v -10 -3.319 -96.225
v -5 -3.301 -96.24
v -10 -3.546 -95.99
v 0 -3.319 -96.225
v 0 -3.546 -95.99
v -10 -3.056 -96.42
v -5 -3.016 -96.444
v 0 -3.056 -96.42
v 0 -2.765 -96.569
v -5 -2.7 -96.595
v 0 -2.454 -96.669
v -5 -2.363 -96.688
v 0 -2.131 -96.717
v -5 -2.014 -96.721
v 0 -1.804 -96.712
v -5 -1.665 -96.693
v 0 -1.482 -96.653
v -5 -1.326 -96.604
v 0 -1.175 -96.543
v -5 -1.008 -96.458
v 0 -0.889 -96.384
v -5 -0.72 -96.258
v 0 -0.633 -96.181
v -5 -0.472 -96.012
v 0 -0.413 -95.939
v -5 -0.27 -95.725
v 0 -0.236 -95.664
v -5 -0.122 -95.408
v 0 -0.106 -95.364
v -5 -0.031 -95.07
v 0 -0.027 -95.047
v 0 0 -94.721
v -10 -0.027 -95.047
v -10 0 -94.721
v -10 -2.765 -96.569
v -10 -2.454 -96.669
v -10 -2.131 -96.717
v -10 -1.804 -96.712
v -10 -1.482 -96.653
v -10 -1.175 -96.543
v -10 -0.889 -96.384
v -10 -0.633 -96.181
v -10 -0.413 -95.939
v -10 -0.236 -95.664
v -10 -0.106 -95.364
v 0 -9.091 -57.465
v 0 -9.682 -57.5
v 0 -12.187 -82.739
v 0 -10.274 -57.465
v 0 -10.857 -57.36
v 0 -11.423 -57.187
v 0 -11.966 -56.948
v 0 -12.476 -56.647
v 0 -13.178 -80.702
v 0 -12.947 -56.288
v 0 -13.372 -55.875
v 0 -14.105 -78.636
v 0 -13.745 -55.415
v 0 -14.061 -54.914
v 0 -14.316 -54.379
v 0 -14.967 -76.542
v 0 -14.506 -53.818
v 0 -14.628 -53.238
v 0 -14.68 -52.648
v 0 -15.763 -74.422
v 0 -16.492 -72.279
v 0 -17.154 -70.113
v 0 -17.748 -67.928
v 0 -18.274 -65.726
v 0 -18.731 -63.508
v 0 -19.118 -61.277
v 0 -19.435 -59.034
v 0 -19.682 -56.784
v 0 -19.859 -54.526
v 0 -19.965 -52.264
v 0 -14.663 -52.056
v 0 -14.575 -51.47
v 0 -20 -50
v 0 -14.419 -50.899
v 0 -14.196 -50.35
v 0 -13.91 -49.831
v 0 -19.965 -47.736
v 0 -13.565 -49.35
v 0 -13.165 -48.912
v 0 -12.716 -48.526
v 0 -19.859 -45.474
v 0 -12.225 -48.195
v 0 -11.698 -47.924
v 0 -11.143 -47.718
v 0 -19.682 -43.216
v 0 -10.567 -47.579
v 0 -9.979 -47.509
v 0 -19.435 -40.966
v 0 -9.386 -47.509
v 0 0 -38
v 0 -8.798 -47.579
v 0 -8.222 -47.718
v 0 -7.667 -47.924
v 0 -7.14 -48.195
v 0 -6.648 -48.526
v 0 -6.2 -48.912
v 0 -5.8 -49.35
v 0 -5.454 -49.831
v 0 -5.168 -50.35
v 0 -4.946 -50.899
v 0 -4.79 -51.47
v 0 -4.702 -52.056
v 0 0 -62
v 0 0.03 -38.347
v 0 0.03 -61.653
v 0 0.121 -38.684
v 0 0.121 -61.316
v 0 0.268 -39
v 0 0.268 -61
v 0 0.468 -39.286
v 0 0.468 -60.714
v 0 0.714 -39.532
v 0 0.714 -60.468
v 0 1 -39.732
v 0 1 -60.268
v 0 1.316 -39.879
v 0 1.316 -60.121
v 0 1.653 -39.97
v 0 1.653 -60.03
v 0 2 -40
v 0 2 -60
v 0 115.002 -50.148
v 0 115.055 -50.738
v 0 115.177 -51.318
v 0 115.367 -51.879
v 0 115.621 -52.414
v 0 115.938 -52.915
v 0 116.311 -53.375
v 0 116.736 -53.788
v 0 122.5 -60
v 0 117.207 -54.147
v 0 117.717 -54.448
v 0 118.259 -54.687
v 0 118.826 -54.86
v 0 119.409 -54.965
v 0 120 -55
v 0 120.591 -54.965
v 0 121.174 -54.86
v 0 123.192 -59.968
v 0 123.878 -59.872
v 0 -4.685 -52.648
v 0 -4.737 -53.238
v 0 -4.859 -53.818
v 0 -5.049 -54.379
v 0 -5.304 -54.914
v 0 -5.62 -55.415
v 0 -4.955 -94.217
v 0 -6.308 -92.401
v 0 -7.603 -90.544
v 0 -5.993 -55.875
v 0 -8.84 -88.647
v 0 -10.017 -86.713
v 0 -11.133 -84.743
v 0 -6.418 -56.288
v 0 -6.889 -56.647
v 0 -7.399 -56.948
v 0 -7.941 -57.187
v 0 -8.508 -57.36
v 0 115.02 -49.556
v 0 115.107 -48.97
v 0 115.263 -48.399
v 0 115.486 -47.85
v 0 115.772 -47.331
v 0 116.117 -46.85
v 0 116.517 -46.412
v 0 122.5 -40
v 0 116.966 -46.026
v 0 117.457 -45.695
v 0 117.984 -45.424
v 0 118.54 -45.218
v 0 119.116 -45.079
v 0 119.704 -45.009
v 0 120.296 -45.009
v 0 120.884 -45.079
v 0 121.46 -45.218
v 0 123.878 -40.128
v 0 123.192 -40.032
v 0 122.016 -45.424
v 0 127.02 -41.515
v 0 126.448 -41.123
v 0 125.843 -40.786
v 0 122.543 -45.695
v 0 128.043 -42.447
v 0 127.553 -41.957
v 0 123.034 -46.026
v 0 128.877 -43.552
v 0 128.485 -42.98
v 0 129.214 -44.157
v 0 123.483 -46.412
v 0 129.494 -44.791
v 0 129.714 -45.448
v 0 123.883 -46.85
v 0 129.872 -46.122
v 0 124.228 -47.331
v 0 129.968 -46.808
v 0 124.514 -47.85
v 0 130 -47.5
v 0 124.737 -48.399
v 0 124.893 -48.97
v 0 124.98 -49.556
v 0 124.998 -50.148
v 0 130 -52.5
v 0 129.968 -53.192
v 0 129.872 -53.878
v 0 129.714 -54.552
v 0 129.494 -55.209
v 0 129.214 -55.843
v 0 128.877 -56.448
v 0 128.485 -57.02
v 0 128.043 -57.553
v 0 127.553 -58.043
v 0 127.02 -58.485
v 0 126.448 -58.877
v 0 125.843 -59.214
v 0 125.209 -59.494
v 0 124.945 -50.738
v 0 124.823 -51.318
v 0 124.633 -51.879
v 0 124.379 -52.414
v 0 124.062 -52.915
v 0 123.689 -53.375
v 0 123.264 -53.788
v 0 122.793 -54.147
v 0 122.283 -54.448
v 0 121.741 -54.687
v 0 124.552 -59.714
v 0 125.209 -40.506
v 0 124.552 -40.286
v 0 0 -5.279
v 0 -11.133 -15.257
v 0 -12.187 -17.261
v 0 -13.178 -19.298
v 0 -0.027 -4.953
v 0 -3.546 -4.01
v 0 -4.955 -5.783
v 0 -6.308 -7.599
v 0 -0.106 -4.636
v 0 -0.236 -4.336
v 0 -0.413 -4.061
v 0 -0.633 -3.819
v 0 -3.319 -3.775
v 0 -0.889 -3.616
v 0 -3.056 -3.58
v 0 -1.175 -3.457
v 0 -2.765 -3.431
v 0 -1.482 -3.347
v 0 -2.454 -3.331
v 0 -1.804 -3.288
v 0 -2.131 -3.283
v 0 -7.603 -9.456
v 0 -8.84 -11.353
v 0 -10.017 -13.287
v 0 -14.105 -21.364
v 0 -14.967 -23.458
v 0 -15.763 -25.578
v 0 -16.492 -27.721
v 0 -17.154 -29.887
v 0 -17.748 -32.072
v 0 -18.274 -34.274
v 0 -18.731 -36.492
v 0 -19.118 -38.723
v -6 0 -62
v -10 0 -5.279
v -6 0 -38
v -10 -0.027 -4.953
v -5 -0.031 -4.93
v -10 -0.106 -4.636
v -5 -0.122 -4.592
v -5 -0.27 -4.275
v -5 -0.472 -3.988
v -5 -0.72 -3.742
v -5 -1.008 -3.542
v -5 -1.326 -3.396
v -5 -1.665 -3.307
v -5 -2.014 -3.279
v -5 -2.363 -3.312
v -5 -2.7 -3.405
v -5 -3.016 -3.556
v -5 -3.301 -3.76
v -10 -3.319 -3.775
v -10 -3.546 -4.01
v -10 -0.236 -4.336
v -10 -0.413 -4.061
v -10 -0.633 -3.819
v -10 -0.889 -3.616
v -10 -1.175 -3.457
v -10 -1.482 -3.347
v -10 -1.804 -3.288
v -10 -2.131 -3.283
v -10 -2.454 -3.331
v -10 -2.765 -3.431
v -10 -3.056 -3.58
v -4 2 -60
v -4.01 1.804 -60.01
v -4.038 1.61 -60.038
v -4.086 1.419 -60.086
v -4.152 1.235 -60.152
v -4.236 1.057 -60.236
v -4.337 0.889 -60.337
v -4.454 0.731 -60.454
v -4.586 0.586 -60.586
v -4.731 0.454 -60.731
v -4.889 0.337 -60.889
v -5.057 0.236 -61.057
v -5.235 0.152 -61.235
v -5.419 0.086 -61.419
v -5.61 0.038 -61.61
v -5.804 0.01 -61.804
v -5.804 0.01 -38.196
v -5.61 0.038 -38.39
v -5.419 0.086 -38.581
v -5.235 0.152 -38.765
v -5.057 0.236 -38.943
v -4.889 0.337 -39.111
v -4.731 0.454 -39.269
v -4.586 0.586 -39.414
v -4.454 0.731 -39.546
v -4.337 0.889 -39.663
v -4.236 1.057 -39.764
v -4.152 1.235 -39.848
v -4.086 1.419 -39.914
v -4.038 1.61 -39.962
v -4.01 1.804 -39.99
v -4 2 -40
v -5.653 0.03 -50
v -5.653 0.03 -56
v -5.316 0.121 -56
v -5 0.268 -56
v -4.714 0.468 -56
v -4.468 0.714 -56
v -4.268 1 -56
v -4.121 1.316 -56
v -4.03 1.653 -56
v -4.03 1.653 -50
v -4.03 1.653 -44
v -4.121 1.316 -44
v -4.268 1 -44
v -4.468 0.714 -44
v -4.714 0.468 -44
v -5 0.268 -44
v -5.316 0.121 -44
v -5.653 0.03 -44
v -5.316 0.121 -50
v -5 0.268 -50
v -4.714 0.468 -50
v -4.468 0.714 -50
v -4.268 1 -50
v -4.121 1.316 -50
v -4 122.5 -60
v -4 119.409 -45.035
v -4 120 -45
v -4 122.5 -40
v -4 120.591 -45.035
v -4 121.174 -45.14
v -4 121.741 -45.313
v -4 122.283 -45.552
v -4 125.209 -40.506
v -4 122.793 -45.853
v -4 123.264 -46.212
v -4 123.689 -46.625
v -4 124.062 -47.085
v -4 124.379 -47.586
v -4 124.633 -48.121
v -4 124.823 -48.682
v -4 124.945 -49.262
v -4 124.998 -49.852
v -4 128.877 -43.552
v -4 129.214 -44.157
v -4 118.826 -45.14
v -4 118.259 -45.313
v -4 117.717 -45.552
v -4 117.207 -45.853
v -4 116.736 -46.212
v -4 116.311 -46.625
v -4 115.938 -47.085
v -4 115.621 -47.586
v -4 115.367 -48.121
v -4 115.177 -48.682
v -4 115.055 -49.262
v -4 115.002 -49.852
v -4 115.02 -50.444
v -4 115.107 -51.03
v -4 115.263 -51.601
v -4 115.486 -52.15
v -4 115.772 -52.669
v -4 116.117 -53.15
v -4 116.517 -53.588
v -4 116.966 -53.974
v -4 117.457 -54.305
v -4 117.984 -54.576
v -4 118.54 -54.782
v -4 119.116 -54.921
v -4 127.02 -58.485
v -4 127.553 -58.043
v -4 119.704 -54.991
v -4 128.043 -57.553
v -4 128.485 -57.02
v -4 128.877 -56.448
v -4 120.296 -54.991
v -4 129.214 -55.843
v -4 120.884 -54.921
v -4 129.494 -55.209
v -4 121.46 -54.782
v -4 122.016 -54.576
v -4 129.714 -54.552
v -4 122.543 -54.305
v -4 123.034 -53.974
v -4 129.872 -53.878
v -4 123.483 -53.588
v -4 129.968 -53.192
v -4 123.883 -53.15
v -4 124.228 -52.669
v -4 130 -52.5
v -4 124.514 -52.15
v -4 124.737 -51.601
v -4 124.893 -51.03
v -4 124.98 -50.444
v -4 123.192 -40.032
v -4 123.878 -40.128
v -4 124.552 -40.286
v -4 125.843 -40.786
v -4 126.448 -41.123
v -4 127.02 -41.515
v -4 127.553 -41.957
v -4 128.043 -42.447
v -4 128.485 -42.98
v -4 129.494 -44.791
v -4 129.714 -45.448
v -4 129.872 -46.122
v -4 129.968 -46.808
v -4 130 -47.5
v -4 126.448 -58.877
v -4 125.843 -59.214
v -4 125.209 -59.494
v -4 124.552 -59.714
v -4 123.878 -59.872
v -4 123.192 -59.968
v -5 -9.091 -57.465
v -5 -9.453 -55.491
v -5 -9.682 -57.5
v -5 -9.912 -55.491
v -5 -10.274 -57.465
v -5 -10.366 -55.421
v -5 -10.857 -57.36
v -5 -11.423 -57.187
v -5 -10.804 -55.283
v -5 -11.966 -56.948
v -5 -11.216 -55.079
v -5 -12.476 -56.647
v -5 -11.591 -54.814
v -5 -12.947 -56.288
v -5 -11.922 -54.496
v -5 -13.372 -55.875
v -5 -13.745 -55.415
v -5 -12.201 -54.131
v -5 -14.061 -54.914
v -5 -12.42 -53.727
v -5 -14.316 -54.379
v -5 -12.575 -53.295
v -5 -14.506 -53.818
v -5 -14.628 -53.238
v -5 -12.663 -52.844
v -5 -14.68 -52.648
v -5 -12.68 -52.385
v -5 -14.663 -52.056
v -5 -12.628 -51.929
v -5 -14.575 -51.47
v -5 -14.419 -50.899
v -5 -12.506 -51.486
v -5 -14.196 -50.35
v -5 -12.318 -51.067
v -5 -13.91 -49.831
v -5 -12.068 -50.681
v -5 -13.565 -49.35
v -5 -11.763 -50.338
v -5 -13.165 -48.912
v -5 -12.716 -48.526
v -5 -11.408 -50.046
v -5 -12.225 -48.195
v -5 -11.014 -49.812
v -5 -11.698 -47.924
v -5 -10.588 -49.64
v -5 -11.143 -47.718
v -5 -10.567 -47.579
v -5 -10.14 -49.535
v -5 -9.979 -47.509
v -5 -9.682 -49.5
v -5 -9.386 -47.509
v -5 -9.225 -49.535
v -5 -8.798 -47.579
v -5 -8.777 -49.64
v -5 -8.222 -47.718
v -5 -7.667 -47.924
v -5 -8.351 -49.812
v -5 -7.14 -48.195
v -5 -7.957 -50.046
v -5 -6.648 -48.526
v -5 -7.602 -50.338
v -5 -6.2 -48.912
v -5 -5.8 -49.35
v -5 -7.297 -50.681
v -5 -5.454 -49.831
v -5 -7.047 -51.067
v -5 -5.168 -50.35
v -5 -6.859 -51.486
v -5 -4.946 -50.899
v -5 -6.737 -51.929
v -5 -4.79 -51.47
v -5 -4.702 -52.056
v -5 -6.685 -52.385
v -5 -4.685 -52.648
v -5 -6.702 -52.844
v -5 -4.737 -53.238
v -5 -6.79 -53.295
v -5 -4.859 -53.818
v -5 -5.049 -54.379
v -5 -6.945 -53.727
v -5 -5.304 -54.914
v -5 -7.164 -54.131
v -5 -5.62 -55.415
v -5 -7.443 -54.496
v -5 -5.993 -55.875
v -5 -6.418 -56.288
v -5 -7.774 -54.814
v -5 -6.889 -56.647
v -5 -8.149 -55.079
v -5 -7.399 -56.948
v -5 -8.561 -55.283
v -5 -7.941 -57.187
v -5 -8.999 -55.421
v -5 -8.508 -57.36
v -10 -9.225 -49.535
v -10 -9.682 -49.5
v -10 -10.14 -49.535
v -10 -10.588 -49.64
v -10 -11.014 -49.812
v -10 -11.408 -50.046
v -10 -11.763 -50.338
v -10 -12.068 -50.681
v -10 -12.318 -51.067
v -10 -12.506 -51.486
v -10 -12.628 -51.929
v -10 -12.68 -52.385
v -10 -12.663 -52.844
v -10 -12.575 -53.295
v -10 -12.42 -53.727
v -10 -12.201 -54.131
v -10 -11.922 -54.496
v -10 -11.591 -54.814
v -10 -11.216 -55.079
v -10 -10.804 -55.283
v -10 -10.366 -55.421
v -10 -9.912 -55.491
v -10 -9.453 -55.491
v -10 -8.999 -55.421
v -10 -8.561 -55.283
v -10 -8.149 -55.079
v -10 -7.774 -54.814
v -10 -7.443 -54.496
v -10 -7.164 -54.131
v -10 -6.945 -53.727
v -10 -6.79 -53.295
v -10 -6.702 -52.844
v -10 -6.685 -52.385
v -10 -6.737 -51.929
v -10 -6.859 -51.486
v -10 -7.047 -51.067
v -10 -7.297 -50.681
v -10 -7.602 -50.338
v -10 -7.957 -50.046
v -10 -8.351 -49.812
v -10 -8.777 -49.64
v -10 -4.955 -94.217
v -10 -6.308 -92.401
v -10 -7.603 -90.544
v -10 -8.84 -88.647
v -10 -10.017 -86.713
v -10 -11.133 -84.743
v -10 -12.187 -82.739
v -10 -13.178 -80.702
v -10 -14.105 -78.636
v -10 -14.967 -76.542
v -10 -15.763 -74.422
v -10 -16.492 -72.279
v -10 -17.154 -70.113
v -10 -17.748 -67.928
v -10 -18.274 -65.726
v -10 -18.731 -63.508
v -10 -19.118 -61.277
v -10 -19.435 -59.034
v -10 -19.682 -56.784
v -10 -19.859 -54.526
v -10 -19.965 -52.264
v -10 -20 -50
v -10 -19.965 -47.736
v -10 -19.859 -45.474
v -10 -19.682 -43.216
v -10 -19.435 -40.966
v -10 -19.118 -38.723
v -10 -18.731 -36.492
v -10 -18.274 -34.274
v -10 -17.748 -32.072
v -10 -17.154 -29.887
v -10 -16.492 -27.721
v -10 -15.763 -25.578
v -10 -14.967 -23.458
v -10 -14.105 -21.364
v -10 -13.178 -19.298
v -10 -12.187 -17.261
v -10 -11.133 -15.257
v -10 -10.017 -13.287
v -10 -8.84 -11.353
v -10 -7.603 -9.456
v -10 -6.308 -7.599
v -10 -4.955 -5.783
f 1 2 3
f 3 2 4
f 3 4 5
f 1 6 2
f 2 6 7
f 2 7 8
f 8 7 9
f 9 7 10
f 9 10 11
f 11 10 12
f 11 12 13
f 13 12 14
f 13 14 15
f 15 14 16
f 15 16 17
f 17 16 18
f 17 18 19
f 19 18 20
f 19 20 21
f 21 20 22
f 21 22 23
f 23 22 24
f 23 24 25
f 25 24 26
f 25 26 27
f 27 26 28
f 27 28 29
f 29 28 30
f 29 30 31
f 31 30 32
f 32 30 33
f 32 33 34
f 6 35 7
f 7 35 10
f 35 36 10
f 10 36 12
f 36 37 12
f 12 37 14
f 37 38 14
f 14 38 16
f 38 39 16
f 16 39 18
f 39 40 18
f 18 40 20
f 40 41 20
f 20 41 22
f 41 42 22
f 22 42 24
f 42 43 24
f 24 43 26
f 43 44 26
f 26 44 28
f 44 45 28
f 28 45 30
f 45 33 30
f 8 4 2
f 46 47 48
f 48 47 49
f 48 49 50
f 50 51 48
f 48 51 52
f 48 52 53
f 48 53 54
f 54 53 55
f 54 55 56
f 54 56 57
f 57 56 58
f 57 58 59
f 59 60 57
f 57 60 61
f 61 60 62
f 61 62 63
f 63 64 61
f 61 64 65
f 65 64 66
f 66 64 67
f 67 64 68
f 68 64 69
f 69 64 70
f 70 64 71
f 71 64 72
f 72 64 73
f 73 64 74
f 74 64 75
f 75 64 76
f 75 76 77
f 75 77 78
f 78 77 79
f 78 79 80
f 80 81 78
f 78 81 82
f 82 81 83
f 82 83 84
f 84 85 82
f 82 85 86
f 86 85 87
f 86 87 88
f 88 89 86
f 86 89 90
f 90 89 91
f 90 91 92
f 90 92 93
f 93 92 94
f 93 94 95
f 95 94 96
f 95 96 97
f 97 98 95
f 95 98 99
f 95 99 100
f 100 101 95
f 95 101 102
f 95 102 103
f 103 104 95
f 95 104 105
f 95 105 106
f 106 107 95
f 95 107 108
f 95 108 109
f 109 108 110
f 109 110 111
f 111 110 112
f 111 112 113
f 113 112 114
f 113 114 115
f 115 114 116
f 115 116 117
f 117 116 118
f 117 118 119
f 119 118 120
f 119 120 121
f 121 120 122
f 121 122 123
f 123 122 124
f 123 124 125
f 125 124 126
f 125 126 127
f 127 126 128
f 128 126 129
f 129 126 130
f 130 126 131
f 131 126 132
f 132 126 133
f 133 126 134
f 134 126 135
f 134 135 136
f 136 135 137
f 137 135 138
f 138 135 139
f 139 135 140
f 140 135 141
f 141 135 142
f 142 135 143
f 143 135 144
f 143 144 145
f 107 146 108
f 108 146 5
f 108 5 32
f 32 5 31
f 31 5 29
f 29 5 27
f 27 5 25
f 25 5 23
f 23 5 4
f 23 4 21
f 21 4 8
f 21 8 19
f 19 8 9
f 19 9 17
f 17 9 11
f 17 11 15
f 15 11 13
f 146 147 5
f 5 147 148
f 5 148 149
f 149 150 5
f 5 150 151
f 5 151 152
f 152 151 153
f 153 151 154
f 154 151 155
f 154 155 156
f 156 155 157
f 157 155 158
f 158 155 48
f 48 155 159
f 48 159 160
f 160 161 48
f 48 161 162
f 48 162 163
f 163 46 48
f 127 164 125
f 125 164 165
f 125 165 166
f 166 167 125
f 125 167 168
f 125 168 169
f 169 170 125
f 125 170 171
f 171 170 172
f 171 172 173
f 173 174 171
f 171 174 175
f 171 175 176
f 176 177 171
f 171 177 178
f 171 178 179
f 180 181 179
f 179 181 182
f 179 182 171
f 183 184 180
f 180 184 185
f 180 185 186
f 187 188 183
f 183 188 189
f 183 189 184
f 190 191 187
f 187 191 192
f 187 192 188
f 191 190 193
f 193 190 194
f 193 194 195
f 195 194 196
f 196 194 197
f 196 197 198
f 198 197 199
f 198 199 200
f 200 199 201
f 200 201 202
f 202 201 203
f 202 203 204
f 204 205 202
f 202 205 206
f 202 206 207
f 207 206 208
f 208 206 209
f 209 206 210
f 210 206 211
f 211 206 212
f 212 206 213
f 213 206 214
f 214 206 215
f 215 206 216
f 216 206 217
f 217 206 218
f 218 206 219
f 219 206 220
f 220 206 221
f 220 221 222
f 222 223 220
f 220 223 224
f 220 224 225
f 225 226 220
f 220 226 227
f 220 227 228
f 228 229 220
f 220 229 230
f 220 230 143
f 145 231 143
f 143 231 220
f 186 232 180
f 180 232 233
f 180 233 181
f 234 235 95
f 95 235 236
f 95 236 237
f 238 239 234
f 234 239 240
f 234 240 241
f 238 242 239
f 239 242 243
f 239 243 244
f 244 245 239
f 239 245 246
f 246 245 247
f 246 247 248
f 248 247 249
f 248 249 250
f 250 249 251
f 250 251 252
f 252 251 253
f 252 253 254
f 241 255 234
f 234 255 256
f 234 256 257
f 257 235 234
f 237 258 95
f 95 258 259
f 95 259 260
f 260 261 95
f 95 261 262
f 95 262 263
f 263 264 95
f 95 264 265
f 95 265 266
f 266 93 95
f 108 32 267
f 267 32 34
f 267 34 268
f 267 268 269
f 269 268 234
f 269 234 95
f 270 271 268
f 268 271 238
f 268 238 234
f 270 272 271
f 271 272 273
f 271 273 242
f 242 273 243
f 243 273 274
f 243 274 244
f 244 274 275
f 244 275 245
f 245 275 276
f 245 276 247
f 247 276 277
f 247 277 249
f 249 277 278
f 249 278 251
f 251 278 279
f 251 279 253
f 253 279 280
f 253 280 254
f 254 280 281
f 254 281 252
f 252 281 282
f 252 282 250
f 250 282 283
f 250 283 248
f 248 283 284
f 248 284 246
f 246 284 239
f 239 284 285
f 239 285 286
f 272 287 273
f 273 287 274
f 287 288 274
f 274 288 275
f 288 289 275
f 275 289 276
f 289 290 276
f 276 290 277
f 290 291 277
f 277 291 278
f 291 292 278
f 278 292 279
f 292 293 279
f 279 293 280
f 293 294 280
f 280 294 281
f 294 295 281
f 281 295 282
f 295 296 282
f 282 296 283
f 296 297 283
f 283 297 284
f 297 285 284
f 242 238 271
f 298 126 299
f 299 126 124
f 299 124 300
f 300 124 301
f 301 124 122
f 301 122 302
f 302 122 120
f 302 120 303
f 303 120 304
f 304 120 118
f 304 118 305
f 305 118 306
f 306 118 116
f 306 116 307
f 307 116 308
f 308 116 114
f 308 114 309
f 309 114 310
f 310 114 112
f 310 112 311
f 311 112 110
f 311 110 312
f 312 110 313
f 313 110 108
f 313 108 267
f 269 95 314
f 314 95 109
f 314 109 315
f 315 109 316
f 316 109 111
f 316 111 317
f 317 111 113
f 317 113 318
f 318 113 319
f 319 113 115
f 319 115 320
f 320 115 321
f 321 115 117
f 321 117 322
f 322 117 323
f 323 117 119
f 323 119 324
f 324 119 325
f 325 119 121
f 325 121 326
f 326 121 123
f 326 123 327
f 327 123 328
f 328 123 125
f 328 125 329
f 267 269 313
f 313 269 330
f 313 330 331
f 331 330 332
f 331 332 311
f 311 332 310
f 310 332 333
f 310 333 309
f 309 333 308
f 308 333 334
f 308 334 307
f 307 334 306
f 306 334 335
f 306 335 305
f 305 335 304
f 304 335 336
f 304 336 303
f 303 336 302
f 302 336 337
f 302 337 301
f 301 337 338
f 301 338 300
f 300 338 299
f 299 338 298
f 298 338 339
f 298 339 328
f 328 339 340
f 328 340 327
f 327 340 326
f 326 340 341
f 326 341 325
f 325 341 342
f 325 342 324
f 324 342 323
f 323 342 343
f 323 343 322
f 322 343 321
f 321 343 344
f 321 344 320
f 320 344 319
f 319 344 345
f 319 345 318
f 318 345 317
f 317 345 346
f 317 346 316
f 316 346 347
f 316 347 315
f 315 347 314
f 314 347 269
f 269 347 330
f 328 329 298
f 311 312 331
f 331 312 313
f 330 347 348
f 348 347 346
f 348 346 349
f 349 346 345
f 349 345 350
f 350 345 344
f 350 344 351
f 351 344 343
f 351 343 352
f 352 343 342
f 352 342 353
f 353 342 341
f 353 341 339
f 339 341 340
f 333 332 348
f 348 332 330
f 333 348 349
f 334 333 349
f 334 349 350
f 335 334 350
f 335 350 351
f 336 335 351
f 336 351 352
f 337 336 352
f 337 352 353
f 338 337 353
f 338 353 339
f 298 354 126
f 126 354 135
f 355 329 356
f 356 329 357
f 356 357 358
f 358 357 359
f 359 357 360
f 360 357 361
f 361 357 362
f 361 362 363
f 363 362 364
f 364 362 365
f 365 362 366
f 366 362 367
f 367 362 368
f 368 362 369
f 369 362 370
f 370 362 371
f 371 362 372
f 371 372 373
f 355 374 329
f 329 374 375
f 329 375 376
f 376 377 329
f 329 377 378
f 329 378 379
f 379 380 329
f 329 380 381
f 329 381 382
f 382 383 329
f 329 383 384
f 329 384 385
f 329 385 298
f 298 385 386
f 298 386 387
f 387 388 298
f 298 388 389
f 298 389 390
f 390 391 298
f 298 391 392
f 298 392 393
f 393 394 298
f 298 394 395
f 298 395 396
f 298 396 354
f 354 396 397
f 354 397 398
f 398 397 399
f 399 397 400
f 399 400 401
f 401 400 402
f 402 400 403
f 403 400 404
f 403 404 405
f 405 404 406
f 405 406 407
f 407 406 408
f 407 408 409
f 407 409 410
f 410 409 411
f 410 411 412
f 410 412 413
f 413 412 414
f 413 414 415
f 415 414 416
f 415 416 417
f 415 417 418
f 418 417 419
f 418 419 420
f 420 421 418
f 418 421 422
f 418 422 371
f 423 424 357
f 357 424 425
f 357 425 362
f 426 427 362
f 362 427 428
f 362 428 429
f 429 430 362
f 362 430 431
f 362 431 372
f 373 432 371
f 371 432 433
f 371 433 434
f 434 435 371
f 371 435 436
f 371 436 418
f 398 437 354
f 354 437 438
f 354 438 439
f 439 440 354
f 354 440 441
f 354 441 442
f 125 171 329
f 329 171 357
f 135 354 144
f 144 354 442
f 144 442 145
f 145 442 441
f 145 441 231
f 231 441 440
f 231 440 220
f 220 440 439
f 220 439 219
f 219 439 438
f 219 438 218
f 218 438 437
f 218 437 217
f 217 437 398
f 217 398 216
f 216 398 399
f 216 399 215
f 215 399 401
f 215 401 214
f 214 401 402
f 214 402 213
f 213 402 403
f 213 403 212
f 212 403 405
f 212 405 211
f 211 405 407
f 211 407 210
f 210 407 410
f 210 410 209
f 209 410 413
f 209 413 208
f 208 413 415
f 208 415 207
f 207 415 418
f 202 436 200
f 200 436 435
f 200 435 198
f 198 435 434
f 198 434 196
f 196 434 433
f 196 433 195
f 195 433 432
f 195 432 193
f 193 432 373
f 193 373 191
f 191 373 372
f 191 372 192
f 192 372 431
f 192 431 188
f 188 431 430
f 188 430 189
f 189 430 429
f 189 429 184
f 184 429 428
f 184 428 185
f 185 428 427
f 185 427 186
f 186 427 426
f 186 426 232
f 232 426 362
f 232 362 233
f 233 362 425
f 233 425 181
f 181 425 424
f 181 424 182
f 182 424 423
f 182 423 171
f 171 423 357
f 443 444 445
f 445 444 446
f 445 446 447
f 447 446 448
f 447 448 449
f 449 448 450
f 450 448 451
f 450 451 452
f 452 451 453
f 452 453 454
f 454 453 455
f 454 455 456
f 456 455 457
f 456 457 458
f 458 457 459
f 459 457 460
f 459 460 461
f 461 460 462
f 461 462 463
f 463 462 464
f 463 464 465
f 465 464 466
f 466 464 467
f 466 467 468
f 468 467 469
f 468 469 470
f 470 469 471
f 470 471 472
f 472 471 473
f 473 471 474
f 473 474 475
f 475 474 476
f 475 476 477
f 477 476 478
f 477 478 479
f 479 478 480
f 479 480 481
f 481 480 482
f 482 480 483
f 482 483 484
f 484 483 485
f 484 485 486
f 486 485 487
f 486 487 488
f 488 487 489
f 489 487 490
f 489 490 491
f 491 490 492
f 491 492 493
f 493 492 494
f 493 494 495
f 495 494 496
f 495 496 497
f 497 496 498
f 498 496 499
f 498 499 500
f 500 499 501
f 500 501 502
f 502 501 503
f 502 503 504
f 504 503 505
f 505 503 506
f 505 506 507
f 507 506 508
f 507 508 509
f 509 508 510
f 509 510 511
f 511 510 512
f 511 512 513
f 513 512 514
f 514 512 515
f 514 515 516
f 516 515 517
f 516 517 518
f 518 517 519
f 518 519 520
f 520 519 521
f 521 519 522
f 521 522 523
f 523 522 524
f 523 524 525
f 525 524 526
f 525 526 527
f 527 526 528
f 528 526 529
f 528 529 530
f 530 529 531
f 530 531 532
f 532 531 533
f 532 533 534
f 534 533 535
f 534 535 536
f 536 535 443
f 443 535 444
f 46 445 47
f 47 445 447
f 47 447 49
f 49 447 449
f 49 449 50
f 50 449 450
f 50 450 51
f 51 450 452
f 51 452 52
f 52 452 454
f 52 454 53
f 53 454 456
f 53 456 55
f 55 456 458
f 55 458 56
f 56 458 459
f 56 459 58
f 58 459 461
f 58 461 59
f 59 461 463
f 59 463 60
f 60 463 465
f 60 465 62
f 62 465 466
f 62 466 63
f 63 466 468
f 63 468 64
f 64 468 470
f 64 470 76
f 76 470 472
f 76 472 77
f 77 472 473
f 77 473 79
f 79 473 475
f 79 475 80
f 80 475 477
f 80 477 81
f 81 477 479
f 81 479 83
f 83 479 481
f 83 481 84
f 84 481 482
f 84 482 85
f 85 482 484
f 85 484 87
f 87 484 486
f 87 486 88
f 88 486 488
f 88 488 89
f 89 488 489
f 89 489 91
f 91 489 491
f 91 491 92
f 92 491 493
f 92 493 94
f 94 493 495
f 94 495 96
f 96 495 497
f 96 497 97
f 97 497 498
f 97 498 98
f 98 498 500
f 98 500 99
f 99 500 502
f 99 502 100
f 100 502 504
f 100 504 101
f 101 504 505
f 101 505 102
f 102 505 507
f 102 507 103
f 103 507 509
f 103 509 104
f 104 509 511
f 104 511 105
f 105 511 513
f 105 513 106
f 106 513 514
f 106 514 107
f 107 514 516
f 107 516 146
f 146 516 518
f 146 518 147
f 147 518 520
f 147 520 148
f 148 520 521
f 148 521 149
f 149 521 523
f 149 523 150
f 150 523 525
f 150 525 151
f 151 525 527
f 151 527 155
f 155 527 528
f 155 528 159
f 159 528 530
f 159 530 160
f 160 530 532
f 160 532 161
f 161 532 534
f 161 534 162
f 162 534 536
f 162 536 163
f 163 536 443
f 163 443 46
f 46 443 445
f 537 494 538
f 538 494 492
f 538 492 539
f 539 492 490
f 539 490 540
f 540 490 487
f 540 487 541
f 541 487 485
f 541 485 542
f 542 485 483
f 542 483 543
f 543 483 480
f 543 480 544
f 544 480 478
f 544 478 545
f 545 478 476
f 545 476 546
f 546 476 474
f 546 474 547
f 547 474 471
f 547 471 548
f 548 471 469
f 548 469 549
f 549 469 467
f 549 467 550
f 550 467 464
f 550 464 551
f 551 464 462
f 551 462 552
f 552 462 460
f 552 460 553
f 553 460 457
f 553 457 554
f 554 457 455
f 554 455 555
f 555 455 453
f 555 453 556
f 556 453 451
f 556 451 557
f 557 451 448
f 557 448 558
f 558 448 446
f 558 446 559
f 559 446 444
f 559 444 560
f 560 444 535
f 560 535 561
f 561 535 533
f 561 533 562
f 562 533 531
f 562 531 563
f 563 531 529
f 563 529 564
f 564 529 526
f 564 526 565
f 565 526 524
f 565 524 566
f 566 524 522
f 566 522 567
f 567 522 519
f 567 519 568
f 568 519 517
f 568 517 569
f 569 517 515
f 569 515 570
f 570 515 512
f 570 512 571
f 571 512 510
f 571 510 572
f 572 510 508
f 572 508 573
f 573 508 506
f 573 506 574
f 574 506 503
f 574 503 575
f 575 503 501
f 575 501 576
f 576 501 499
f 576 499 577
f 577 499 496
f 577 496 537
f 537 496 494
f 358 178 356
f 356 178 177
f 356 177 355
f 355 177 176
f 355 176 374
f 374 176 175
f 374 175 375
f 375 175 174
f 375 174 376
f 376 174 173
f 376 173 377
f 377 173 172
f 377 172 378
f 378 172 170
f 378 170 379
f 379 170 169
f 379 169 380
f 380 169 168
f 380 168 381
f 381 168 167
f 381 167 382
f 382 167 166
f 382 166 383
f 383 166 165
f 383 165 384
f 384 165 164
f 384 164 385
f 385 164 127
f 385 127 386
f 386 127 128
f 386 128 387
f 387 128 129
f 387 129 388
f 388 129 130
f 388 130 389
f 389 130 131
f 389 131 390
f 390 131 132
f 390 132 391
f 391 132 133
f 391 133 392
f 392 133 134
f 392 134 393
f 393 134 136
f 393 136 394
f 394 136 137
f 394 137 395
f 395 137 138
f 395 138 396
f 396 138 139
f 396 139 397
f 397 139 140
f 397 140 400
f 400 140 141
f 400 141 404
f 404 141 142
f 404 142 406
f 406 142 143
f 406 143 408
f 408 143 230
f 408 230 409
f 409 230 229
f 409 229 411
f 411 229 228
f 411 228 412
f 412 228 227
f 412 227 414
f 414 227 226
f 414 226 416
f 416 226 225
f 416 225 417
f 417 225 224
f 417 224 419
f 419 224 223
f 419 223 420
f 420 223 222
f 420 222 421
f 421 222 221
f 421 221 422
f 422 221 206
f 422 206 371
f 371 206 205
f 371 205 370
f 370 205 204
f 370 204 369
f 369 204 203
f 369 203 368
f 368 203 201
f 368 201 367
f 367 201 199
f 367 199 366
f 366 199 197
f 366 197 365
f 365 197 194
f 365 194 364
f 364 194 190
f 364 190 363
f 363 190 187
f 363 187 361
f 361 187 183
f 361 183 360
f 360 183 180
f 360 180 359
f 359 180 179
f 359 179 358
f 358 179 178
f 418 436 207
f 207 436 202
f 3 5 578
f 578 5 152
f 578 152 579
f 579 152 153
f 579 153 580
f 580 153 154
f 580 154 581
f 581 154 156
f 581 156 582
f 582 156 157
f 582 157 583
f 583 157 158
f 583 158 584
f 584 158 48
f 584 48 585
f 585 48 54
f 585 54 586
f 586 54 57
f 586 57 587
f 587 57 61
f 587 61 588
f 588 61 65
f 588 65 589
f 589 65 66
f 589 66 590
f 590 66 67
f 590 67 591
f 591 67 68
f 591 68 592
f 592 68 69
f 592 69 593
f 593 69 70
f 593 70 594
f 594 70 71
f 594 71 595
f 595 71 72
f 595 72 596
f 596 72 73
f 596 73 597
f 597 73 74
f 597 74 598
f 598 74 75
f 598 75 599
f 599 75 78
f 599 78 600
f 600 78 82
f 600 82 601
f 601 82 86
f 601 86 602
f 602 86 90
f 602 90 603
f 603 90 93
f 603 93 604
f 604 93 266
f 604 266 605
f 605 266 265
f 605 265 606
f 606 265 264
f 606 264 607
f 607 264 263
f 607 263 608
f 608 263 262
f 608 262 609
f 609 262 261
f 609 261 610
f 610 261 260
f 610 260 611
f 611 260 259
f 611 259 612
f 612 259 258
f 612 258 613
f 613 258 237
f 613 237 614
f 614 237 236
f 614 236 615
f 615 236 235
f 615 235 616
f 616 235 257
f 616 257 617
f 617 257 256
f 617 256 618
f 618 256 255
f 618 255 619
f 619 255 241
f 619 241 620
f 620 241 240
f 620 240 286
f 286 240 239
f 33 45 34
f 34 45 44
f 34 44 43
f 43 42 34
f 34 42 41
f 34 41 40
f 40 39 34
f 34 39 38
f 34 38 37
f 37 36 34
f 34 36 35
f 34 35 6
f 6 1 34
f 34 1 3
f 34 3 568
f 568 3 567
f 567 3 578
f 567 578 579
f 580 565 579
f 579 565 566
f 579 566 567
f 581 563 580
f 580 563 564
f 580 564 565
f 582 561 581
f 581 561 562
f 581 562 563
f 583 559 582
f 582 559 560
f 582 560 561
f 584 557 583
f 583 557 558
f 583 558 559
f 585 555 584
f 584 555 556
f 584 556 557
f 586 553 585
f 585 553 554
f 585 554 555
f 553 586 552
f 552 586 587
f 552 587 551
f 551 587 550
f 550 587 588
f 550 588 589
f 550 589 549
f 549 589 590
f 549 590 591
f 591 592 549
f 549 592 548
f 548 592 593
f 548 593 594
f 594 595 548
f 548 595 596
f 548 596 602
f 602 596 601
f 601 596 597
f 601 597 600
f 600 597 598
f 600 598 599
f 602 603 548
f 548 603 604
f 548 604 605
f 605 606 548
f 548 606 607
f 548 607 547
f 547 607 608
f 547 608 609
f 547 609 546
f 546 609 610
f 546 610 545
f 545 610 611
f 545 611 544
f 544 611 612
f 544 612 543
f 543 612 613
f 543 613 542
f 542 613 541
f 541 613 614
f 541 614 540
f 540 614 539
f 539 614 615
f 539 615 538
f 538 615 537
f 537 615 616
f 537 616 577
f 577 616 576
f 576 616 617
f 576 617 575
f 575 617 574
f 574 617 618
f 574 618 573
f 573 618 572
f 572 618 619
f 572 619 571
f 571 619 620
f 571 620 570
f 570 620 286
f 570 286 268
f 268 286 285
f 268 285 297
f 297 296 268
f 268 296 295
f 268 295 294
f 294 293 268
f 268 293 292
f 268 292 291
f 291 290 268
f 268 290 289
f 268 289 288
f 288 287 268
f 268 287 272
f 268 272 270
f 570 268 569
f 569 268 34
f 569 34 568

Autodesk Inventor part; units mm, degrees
ref_plane "YZ Plane" through (0, 0, 0) normal (1, 0, 0) x (0, 1, 0)
ref_plane "XZ Plane" through (0, 0, 0) normal (0, 1, 0) x (-1, 0, 0)
ref_plane "XY Plane" through (0, 0, 0) normal (0, 0, 1) x (1, 0, 0)
sketch "スケッチ4" plane through (0, 0, 0) normal (1, 0, 0) x (0, 1, 0)
  line L0 (0, 0) -> (0, -100)
  line L1 (0, -50) -> (-20, -50)
  arc A0 (0, 0) -> (0, -100) centre (52.5, -50) ccw
  dimension "d23" = 100
  dimension "d24" = 20
extrude "押し出し3" add sketch "スケッチ4" against normal blind 10
sketch "スケッチ5" plane through (0, 0, 0) normal (1, 0, 0) x (0, 0, -1)
  line L0 (40, 130) -> (60, 130)
  line L1 (60, 130) -> (60, 0)
  line L2 (60, 0) -> (40, 0)
  line L3 (40, 0) -> (40, 130)
  line L4 (100, 0) -> (0, 0) projected
  point P0 (50, 0)
  point P1 (50, 0)
  dimension "d27" = 20
  dimension "d28" = 130
  dimension "d29" = 0
  dimension "d30" = 0
extrude "押し出し4" add sketch "スケッチ5" against normal blind 4
sketch "スケッチ6" plane through (0, 0, 0) normal (1, 0, 0) x (0, 0, -1)
  line L0 (60, 0) -> (60, 130) projected
  line L1 (60, 130) -> (40, 130) projected
  point P0 (0, 0)
  point P1 (50, 120)
  dimension "d33" = 10
  dimension "d34" = 10
hole "穴2" at (0, 120, -50) direction (-1, 0, 0) diameter 10 end through all
sketch "スケッチ7" plane through (0, 0, 0) normal (1, 0, 0) x (0, 0, -1)
  line L0 (40, 0) -> (60, 0) projected
  line L1 (60, 0) -> (60, 130) projected
  point P0 (0, 0)
  point P1 (52.5, -9.6825)
  point P2 (50, 0)
  dimension "d42" = 10
  dimension "d43" = 7.5
hole "穴3" at (0, -9.6825, -52.5) direction (-1, 0, 0) diameter 6 end through all counterbore diameter 10 counterbore depth 5
fillet "フィレット1" radius 7.5 2 edges at (-2, 130, -40) (-2, 130, -60)
fillet "フィレット2" radius 2 3 edges at (-2, 0, -40) (-4, 0, -50) (-2, 0, -60)
fillet "フィレット3" radius 2 2 edges at (-5, 0, 0) (-5, 0, -100)
properties part number "受動歩行_ver3"
